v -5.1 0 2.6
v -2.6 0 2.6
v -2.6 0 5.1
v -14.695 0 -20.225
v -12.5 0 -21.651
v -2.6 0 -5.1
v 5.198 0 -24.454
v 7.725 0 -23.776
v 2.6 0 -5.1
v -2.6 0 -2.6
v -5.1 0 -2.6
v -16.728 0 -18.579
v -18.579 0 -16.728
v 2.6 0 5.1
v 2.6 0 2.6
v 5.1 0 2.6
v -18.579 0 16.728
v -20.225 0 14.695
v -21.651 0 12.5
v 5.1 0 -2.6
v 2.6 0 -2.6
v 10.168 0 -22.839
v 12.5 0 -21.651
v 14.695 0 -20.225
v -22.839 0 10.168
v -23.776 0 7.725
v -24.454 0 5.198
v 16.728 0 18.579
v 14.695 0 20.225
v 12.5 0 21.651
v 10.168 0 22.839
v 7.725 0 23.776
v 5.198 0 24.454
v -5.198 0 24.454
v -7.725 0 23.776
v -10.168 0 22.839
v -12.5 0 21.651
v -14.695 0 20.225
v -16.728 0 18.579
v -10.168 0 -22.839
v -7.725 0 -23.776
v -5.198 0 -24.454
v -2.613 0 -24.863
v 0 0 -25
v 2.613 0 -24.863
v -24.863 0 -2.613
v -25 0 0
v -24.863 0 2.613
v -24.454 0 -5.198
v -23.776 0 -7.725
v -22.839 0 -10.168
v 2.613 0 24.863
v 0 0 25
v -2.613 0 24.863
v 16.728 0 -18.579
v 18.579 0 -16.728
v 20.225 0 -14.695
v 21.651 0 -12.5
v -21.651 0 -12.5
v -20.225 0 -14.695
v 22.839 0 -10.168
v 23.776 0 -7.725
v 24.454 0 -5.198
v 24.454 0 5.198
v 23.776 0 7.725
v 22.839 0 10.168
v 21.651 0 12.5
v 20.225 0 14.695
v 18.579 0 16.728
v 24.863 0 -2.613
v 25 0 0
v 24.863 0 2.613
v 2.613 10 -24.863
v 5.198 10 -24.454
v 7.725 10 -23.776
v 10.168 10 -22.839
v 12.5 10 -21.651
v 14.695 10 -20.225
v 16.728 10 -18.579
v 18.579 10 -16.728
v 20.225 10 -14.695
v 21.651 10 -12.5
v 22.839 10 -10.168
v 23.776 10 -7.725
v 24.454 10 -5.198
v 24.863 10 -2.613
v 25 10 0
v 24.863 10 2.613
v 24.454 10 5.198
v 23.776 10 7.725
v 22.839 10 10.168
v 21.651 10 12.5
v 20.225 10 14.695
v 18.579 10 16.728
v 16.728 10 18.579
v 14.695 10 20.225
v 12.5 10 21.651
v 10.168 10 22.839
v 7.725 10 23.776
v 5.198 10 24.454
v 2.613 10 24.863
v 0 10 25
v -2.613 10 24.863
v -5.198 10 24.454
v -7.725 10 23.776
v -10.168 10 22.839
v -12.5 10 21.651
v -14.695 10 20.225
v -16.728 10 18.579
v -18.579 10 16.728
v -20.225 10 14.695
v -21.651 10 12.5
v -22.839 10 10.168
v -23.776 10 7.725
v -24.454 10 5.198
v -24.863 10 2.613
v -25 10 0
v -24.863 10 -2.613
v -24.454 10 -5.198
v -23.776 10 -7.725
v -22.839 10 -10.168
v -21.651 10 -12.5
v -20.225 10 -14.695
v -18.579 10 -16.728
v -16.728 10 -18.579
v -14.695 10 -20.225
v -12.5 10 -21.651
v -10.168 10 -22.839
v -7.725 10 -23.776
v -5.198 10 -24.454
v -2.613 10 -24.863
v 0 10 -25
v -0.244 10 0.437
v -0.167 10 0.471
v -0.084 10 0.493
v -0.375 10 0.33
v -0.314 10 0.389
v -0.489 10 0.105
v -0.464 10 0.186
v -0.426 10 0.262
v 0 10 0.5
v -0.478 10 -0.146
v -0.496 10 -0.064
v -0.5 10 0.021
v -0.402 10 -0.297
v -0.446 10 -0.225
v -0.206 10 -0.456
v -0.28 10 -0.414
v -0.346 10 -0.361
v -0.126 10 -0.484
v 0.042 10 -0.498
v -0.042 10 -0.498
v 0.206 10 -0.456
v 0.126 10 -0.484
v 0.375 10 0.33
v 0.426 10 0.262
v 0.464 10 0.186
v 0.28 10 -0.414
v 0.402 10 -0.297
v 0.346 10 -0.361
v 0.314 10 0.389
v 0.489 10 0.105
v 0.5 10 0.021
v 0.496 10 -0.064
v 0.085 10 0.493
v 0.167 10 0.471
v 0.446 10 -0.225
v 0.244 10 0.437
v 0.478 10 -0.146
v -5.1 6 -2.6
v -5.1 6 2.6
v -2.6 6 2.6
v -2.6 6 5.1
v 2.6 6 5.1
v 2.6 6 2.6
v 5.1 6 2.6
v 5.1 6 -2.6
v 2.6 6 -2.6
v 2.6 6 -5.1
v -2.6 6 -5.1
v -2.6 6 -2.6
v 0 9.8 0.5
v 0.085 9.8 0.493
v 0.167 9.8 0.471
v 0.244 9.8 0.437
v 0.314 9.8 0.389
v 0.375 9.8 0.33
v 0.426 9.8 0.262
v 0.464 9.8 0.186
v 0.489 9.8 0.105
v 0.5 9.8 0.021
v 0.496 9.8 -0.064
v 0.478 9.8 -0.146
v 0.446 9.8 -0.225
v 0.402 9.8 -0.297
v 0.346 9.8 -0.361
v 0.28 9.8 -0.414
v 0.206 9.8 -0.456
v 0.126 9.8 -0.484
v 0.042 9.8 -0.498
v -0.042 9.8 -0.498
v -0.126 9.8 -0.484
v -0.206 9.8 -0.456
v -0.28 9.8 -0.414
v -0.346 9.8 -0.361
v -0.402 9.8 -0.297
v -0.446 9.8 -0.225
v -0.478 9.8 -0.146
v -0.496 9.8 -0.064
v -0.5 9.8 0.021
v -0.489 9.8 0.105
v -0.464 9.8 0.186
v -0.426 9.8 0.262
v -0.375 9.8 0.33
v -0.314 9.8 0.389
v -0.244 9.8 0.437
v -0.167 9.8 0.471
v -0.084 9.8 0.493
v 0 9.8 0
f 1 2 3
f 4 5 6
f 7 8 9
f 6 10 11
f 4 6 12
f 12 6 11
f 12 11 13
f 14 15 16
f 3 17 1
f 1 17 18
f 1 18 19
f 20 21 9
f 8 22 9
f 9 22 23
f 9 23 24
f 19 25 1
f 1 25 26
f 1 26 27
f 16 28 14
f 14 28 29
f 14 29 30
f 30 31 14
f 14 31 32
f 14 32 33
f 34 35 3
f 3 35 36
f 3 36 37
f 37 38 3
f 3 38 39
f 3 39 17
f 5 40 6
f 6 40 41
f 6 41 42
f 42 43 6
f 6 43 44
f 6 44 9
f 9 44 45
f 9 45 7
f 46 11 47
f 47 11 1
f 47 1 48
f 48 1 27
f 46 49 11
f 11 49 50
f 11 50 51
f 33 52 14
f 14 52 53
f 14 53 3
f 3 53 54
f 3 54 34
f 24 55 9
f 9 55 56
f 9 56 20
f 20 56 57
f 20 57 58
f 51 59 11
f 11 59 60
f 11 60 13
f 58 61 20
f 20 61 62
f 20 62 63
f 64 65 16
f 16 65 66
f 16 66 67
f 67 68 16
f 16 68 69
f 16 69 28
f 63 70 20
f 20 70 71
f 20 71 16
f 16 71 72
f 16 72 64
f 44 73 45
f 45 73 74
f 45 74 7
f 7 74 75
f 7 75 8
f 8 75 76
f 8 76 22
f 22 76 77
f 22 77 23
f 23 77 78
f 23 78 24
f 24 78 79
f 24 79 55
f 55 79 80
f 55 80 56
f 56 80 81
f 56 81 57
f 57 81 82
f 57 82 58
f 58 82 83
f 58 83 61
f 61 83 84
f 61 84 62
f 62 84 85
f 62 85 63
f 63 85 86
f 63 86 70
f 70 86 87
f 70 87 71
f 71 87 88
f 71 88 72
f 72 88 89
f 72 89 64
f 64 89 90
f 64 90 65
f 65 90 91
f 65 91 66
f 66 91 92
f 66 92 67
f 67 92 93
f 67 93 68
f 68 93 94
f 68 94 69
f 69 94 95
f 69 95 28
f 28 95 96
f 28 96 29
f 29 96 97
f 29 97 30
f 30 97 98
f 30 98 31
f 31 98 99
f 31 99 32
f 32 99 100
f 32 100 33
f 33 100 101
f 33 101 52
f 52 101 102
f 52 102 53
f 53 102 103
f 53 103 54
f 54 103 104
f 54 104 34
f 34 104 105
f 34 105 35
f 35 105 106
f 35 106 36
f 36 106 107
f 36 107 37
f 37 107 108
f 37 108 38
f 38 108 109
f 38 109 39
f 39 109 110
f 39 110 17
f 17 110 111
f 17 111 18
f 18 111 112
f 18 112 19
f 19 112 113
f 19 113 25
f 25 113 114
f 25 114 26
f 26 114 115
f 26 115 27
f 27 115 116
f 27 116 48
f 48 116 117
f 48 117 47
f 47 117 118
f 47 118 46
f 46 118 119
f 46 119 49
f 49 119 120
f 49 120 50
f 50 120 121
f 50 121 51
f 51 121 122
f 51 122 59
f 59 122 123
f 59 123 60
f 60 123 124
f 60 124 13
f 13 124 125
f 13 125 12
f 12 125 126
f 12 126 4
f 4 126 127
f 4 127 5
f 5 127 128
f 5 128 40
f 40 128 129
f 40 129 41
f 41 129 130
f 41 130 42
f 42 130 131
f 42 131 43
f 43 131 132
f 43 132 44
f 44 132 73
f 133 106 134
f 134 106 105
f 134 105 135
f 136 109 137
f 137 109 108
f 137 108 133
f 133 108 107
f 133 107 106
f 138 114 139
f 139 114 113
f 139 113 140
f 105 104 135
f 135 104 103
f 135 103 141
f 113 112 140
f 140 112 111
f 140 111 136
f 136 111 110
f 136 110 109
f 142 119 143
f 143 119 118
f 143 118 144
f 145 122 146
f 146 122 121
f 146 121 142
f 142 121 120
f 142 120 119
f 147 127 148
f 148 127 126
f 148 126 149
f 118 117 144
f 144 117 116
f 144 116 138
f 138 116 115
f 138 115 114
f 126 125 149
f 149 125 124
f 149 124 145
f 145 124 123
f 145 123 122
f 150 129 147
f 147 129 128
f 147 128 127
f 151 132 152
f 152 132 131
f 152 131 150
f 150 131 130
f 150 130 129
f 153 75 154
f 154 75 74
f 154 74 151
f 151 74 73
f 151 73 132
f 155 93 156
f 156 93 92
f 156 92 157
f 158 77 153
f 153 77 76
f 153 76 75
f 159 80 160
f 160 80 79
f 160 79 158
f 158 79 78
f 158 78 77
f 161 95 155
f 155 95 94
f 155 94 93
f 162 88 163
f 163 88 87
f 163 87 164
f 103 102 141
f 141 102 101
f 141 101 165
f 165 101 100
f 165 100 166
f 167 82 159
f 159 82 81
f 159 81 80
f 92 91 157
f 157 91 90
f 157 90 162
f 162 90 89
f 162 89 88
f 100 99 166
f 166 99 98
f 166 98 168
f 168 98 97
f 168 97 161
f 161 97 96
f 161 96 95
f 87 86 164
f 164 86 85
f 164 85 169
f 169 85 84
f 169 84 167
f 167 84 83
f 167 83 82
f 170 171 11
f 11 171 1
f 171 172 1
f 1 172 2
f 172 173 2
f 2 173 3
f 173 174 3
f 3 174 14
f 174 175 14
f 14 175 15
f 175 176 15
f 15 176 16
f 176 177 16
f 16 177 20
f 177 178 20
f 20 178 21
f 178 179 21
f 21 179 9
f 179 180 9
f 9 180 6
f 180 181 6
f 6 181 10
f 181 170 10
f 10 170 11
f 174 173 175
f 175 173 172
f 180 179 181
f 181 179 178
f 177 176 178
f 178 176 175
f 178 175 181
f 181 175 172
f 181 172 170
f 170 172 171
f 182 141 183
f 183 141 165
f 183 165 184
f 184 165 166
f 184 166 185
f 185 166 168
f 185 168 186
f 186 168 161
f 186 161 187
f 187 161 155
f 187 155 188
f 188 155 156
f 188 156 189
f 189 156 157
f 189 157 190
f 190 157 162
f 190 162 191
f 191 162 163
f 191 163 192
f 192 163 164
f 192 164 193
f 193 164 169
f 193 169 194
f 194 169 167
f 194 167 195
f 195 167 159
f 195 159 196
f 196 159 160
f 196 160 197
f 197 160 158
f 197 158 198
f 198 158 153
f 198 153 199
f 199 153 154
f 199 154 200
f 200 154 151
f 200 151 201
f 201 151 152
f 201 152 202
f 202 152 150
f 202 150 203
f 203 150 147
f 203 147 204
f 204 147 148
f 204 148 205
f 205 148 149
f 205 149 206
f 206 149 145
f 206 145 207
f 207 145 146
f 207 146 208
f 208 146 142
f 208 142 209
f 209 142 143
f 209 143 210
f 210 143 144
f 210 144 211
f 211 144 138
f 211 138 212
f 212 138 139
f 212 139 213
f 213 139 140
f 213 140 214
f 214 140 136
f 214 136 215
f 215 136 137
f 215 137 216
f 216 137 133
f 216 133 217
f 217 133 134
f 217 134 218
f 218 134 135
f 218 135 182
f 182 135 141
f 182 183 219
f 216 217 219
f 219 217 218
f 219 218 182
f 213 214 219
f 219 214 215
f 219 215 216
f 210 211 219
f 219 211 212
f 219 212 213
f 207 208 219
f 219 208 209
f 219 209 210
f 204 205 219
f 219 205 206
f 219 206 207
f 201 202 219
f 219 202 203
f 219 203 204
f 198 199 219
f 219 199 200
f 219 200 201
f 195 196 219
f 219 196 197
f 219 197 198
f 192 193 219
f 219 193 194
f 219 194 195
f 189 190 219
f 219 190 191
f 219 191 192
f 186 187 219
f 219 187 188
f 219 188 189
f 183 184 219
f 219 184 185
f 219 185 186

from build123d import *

# Parameters (mm, degrees)
ESBO_O1_R                = 25
RESSALTO_EXTRUS_O1_DEPTH = 10
ESBO_O2_W                = 2.5
ESBO_O2_H                = 5.2
ESBO_O2_W_2              = 5.2
ESBO_O2_H_2              = 2.5
CORTE_EXTRUS_O1_DEPTH    = 6
ESBO_O3_R                = 0.5
CORTE_EXTRUS_O2_DEPTH    = 0.2


with BuildPart() as part:
    # Esboço1 → Ressalto-extrusão1 (new body)
    with BuildSketch(Plane(origin=(0, 0, 0), x_dir=(1, 0, 0), z_dir=(0, 1, 0))):
        Circle(ESBO_O1_R)
    extrude(amount=RESSALTO_EXTRUS_O1_DEPTH)

    # Esboço2 → Corte-extrusão1 (cut)
    with BuildSketch(Plane.XZ):
        with Locations((-3.85, 0)):
            Rectangle(ESBO_O2_W, ESBO_O2_H)
        Rectangle(ESBO_O2_W_2, ESBO_O2_H)
        with Locations((0, 3.85)):
            Rectangle(ESBO_O2_W_2, ESBO_O2_H_2)
        with Locations((3.85, 0)):
            Rectangle(ESBO_O2_W, ESBO_O2_H)
        with Locations((0, -3.85)):
            Rectangle(ESBO_O2_W_2, ESBO_O2_H_2)
    extrude(amount=-CORTE_EXTRUS_O1_DEPTH, mode=Mode.SUBTRACT)

    # Esboço3 → Corte-extrusão2 (cut)
    with BuildSketch(Plane(origin=(0, 10, 0), x_dir=(1, 0, 0), z_dir=(0, 1, 0))):
        Circle(ESBO_O3_R)
    extrude(amount=-CORTE_EXTRUS_O2_DEPTH, mode=Mode.SUBTRACT)


solid = part.part
